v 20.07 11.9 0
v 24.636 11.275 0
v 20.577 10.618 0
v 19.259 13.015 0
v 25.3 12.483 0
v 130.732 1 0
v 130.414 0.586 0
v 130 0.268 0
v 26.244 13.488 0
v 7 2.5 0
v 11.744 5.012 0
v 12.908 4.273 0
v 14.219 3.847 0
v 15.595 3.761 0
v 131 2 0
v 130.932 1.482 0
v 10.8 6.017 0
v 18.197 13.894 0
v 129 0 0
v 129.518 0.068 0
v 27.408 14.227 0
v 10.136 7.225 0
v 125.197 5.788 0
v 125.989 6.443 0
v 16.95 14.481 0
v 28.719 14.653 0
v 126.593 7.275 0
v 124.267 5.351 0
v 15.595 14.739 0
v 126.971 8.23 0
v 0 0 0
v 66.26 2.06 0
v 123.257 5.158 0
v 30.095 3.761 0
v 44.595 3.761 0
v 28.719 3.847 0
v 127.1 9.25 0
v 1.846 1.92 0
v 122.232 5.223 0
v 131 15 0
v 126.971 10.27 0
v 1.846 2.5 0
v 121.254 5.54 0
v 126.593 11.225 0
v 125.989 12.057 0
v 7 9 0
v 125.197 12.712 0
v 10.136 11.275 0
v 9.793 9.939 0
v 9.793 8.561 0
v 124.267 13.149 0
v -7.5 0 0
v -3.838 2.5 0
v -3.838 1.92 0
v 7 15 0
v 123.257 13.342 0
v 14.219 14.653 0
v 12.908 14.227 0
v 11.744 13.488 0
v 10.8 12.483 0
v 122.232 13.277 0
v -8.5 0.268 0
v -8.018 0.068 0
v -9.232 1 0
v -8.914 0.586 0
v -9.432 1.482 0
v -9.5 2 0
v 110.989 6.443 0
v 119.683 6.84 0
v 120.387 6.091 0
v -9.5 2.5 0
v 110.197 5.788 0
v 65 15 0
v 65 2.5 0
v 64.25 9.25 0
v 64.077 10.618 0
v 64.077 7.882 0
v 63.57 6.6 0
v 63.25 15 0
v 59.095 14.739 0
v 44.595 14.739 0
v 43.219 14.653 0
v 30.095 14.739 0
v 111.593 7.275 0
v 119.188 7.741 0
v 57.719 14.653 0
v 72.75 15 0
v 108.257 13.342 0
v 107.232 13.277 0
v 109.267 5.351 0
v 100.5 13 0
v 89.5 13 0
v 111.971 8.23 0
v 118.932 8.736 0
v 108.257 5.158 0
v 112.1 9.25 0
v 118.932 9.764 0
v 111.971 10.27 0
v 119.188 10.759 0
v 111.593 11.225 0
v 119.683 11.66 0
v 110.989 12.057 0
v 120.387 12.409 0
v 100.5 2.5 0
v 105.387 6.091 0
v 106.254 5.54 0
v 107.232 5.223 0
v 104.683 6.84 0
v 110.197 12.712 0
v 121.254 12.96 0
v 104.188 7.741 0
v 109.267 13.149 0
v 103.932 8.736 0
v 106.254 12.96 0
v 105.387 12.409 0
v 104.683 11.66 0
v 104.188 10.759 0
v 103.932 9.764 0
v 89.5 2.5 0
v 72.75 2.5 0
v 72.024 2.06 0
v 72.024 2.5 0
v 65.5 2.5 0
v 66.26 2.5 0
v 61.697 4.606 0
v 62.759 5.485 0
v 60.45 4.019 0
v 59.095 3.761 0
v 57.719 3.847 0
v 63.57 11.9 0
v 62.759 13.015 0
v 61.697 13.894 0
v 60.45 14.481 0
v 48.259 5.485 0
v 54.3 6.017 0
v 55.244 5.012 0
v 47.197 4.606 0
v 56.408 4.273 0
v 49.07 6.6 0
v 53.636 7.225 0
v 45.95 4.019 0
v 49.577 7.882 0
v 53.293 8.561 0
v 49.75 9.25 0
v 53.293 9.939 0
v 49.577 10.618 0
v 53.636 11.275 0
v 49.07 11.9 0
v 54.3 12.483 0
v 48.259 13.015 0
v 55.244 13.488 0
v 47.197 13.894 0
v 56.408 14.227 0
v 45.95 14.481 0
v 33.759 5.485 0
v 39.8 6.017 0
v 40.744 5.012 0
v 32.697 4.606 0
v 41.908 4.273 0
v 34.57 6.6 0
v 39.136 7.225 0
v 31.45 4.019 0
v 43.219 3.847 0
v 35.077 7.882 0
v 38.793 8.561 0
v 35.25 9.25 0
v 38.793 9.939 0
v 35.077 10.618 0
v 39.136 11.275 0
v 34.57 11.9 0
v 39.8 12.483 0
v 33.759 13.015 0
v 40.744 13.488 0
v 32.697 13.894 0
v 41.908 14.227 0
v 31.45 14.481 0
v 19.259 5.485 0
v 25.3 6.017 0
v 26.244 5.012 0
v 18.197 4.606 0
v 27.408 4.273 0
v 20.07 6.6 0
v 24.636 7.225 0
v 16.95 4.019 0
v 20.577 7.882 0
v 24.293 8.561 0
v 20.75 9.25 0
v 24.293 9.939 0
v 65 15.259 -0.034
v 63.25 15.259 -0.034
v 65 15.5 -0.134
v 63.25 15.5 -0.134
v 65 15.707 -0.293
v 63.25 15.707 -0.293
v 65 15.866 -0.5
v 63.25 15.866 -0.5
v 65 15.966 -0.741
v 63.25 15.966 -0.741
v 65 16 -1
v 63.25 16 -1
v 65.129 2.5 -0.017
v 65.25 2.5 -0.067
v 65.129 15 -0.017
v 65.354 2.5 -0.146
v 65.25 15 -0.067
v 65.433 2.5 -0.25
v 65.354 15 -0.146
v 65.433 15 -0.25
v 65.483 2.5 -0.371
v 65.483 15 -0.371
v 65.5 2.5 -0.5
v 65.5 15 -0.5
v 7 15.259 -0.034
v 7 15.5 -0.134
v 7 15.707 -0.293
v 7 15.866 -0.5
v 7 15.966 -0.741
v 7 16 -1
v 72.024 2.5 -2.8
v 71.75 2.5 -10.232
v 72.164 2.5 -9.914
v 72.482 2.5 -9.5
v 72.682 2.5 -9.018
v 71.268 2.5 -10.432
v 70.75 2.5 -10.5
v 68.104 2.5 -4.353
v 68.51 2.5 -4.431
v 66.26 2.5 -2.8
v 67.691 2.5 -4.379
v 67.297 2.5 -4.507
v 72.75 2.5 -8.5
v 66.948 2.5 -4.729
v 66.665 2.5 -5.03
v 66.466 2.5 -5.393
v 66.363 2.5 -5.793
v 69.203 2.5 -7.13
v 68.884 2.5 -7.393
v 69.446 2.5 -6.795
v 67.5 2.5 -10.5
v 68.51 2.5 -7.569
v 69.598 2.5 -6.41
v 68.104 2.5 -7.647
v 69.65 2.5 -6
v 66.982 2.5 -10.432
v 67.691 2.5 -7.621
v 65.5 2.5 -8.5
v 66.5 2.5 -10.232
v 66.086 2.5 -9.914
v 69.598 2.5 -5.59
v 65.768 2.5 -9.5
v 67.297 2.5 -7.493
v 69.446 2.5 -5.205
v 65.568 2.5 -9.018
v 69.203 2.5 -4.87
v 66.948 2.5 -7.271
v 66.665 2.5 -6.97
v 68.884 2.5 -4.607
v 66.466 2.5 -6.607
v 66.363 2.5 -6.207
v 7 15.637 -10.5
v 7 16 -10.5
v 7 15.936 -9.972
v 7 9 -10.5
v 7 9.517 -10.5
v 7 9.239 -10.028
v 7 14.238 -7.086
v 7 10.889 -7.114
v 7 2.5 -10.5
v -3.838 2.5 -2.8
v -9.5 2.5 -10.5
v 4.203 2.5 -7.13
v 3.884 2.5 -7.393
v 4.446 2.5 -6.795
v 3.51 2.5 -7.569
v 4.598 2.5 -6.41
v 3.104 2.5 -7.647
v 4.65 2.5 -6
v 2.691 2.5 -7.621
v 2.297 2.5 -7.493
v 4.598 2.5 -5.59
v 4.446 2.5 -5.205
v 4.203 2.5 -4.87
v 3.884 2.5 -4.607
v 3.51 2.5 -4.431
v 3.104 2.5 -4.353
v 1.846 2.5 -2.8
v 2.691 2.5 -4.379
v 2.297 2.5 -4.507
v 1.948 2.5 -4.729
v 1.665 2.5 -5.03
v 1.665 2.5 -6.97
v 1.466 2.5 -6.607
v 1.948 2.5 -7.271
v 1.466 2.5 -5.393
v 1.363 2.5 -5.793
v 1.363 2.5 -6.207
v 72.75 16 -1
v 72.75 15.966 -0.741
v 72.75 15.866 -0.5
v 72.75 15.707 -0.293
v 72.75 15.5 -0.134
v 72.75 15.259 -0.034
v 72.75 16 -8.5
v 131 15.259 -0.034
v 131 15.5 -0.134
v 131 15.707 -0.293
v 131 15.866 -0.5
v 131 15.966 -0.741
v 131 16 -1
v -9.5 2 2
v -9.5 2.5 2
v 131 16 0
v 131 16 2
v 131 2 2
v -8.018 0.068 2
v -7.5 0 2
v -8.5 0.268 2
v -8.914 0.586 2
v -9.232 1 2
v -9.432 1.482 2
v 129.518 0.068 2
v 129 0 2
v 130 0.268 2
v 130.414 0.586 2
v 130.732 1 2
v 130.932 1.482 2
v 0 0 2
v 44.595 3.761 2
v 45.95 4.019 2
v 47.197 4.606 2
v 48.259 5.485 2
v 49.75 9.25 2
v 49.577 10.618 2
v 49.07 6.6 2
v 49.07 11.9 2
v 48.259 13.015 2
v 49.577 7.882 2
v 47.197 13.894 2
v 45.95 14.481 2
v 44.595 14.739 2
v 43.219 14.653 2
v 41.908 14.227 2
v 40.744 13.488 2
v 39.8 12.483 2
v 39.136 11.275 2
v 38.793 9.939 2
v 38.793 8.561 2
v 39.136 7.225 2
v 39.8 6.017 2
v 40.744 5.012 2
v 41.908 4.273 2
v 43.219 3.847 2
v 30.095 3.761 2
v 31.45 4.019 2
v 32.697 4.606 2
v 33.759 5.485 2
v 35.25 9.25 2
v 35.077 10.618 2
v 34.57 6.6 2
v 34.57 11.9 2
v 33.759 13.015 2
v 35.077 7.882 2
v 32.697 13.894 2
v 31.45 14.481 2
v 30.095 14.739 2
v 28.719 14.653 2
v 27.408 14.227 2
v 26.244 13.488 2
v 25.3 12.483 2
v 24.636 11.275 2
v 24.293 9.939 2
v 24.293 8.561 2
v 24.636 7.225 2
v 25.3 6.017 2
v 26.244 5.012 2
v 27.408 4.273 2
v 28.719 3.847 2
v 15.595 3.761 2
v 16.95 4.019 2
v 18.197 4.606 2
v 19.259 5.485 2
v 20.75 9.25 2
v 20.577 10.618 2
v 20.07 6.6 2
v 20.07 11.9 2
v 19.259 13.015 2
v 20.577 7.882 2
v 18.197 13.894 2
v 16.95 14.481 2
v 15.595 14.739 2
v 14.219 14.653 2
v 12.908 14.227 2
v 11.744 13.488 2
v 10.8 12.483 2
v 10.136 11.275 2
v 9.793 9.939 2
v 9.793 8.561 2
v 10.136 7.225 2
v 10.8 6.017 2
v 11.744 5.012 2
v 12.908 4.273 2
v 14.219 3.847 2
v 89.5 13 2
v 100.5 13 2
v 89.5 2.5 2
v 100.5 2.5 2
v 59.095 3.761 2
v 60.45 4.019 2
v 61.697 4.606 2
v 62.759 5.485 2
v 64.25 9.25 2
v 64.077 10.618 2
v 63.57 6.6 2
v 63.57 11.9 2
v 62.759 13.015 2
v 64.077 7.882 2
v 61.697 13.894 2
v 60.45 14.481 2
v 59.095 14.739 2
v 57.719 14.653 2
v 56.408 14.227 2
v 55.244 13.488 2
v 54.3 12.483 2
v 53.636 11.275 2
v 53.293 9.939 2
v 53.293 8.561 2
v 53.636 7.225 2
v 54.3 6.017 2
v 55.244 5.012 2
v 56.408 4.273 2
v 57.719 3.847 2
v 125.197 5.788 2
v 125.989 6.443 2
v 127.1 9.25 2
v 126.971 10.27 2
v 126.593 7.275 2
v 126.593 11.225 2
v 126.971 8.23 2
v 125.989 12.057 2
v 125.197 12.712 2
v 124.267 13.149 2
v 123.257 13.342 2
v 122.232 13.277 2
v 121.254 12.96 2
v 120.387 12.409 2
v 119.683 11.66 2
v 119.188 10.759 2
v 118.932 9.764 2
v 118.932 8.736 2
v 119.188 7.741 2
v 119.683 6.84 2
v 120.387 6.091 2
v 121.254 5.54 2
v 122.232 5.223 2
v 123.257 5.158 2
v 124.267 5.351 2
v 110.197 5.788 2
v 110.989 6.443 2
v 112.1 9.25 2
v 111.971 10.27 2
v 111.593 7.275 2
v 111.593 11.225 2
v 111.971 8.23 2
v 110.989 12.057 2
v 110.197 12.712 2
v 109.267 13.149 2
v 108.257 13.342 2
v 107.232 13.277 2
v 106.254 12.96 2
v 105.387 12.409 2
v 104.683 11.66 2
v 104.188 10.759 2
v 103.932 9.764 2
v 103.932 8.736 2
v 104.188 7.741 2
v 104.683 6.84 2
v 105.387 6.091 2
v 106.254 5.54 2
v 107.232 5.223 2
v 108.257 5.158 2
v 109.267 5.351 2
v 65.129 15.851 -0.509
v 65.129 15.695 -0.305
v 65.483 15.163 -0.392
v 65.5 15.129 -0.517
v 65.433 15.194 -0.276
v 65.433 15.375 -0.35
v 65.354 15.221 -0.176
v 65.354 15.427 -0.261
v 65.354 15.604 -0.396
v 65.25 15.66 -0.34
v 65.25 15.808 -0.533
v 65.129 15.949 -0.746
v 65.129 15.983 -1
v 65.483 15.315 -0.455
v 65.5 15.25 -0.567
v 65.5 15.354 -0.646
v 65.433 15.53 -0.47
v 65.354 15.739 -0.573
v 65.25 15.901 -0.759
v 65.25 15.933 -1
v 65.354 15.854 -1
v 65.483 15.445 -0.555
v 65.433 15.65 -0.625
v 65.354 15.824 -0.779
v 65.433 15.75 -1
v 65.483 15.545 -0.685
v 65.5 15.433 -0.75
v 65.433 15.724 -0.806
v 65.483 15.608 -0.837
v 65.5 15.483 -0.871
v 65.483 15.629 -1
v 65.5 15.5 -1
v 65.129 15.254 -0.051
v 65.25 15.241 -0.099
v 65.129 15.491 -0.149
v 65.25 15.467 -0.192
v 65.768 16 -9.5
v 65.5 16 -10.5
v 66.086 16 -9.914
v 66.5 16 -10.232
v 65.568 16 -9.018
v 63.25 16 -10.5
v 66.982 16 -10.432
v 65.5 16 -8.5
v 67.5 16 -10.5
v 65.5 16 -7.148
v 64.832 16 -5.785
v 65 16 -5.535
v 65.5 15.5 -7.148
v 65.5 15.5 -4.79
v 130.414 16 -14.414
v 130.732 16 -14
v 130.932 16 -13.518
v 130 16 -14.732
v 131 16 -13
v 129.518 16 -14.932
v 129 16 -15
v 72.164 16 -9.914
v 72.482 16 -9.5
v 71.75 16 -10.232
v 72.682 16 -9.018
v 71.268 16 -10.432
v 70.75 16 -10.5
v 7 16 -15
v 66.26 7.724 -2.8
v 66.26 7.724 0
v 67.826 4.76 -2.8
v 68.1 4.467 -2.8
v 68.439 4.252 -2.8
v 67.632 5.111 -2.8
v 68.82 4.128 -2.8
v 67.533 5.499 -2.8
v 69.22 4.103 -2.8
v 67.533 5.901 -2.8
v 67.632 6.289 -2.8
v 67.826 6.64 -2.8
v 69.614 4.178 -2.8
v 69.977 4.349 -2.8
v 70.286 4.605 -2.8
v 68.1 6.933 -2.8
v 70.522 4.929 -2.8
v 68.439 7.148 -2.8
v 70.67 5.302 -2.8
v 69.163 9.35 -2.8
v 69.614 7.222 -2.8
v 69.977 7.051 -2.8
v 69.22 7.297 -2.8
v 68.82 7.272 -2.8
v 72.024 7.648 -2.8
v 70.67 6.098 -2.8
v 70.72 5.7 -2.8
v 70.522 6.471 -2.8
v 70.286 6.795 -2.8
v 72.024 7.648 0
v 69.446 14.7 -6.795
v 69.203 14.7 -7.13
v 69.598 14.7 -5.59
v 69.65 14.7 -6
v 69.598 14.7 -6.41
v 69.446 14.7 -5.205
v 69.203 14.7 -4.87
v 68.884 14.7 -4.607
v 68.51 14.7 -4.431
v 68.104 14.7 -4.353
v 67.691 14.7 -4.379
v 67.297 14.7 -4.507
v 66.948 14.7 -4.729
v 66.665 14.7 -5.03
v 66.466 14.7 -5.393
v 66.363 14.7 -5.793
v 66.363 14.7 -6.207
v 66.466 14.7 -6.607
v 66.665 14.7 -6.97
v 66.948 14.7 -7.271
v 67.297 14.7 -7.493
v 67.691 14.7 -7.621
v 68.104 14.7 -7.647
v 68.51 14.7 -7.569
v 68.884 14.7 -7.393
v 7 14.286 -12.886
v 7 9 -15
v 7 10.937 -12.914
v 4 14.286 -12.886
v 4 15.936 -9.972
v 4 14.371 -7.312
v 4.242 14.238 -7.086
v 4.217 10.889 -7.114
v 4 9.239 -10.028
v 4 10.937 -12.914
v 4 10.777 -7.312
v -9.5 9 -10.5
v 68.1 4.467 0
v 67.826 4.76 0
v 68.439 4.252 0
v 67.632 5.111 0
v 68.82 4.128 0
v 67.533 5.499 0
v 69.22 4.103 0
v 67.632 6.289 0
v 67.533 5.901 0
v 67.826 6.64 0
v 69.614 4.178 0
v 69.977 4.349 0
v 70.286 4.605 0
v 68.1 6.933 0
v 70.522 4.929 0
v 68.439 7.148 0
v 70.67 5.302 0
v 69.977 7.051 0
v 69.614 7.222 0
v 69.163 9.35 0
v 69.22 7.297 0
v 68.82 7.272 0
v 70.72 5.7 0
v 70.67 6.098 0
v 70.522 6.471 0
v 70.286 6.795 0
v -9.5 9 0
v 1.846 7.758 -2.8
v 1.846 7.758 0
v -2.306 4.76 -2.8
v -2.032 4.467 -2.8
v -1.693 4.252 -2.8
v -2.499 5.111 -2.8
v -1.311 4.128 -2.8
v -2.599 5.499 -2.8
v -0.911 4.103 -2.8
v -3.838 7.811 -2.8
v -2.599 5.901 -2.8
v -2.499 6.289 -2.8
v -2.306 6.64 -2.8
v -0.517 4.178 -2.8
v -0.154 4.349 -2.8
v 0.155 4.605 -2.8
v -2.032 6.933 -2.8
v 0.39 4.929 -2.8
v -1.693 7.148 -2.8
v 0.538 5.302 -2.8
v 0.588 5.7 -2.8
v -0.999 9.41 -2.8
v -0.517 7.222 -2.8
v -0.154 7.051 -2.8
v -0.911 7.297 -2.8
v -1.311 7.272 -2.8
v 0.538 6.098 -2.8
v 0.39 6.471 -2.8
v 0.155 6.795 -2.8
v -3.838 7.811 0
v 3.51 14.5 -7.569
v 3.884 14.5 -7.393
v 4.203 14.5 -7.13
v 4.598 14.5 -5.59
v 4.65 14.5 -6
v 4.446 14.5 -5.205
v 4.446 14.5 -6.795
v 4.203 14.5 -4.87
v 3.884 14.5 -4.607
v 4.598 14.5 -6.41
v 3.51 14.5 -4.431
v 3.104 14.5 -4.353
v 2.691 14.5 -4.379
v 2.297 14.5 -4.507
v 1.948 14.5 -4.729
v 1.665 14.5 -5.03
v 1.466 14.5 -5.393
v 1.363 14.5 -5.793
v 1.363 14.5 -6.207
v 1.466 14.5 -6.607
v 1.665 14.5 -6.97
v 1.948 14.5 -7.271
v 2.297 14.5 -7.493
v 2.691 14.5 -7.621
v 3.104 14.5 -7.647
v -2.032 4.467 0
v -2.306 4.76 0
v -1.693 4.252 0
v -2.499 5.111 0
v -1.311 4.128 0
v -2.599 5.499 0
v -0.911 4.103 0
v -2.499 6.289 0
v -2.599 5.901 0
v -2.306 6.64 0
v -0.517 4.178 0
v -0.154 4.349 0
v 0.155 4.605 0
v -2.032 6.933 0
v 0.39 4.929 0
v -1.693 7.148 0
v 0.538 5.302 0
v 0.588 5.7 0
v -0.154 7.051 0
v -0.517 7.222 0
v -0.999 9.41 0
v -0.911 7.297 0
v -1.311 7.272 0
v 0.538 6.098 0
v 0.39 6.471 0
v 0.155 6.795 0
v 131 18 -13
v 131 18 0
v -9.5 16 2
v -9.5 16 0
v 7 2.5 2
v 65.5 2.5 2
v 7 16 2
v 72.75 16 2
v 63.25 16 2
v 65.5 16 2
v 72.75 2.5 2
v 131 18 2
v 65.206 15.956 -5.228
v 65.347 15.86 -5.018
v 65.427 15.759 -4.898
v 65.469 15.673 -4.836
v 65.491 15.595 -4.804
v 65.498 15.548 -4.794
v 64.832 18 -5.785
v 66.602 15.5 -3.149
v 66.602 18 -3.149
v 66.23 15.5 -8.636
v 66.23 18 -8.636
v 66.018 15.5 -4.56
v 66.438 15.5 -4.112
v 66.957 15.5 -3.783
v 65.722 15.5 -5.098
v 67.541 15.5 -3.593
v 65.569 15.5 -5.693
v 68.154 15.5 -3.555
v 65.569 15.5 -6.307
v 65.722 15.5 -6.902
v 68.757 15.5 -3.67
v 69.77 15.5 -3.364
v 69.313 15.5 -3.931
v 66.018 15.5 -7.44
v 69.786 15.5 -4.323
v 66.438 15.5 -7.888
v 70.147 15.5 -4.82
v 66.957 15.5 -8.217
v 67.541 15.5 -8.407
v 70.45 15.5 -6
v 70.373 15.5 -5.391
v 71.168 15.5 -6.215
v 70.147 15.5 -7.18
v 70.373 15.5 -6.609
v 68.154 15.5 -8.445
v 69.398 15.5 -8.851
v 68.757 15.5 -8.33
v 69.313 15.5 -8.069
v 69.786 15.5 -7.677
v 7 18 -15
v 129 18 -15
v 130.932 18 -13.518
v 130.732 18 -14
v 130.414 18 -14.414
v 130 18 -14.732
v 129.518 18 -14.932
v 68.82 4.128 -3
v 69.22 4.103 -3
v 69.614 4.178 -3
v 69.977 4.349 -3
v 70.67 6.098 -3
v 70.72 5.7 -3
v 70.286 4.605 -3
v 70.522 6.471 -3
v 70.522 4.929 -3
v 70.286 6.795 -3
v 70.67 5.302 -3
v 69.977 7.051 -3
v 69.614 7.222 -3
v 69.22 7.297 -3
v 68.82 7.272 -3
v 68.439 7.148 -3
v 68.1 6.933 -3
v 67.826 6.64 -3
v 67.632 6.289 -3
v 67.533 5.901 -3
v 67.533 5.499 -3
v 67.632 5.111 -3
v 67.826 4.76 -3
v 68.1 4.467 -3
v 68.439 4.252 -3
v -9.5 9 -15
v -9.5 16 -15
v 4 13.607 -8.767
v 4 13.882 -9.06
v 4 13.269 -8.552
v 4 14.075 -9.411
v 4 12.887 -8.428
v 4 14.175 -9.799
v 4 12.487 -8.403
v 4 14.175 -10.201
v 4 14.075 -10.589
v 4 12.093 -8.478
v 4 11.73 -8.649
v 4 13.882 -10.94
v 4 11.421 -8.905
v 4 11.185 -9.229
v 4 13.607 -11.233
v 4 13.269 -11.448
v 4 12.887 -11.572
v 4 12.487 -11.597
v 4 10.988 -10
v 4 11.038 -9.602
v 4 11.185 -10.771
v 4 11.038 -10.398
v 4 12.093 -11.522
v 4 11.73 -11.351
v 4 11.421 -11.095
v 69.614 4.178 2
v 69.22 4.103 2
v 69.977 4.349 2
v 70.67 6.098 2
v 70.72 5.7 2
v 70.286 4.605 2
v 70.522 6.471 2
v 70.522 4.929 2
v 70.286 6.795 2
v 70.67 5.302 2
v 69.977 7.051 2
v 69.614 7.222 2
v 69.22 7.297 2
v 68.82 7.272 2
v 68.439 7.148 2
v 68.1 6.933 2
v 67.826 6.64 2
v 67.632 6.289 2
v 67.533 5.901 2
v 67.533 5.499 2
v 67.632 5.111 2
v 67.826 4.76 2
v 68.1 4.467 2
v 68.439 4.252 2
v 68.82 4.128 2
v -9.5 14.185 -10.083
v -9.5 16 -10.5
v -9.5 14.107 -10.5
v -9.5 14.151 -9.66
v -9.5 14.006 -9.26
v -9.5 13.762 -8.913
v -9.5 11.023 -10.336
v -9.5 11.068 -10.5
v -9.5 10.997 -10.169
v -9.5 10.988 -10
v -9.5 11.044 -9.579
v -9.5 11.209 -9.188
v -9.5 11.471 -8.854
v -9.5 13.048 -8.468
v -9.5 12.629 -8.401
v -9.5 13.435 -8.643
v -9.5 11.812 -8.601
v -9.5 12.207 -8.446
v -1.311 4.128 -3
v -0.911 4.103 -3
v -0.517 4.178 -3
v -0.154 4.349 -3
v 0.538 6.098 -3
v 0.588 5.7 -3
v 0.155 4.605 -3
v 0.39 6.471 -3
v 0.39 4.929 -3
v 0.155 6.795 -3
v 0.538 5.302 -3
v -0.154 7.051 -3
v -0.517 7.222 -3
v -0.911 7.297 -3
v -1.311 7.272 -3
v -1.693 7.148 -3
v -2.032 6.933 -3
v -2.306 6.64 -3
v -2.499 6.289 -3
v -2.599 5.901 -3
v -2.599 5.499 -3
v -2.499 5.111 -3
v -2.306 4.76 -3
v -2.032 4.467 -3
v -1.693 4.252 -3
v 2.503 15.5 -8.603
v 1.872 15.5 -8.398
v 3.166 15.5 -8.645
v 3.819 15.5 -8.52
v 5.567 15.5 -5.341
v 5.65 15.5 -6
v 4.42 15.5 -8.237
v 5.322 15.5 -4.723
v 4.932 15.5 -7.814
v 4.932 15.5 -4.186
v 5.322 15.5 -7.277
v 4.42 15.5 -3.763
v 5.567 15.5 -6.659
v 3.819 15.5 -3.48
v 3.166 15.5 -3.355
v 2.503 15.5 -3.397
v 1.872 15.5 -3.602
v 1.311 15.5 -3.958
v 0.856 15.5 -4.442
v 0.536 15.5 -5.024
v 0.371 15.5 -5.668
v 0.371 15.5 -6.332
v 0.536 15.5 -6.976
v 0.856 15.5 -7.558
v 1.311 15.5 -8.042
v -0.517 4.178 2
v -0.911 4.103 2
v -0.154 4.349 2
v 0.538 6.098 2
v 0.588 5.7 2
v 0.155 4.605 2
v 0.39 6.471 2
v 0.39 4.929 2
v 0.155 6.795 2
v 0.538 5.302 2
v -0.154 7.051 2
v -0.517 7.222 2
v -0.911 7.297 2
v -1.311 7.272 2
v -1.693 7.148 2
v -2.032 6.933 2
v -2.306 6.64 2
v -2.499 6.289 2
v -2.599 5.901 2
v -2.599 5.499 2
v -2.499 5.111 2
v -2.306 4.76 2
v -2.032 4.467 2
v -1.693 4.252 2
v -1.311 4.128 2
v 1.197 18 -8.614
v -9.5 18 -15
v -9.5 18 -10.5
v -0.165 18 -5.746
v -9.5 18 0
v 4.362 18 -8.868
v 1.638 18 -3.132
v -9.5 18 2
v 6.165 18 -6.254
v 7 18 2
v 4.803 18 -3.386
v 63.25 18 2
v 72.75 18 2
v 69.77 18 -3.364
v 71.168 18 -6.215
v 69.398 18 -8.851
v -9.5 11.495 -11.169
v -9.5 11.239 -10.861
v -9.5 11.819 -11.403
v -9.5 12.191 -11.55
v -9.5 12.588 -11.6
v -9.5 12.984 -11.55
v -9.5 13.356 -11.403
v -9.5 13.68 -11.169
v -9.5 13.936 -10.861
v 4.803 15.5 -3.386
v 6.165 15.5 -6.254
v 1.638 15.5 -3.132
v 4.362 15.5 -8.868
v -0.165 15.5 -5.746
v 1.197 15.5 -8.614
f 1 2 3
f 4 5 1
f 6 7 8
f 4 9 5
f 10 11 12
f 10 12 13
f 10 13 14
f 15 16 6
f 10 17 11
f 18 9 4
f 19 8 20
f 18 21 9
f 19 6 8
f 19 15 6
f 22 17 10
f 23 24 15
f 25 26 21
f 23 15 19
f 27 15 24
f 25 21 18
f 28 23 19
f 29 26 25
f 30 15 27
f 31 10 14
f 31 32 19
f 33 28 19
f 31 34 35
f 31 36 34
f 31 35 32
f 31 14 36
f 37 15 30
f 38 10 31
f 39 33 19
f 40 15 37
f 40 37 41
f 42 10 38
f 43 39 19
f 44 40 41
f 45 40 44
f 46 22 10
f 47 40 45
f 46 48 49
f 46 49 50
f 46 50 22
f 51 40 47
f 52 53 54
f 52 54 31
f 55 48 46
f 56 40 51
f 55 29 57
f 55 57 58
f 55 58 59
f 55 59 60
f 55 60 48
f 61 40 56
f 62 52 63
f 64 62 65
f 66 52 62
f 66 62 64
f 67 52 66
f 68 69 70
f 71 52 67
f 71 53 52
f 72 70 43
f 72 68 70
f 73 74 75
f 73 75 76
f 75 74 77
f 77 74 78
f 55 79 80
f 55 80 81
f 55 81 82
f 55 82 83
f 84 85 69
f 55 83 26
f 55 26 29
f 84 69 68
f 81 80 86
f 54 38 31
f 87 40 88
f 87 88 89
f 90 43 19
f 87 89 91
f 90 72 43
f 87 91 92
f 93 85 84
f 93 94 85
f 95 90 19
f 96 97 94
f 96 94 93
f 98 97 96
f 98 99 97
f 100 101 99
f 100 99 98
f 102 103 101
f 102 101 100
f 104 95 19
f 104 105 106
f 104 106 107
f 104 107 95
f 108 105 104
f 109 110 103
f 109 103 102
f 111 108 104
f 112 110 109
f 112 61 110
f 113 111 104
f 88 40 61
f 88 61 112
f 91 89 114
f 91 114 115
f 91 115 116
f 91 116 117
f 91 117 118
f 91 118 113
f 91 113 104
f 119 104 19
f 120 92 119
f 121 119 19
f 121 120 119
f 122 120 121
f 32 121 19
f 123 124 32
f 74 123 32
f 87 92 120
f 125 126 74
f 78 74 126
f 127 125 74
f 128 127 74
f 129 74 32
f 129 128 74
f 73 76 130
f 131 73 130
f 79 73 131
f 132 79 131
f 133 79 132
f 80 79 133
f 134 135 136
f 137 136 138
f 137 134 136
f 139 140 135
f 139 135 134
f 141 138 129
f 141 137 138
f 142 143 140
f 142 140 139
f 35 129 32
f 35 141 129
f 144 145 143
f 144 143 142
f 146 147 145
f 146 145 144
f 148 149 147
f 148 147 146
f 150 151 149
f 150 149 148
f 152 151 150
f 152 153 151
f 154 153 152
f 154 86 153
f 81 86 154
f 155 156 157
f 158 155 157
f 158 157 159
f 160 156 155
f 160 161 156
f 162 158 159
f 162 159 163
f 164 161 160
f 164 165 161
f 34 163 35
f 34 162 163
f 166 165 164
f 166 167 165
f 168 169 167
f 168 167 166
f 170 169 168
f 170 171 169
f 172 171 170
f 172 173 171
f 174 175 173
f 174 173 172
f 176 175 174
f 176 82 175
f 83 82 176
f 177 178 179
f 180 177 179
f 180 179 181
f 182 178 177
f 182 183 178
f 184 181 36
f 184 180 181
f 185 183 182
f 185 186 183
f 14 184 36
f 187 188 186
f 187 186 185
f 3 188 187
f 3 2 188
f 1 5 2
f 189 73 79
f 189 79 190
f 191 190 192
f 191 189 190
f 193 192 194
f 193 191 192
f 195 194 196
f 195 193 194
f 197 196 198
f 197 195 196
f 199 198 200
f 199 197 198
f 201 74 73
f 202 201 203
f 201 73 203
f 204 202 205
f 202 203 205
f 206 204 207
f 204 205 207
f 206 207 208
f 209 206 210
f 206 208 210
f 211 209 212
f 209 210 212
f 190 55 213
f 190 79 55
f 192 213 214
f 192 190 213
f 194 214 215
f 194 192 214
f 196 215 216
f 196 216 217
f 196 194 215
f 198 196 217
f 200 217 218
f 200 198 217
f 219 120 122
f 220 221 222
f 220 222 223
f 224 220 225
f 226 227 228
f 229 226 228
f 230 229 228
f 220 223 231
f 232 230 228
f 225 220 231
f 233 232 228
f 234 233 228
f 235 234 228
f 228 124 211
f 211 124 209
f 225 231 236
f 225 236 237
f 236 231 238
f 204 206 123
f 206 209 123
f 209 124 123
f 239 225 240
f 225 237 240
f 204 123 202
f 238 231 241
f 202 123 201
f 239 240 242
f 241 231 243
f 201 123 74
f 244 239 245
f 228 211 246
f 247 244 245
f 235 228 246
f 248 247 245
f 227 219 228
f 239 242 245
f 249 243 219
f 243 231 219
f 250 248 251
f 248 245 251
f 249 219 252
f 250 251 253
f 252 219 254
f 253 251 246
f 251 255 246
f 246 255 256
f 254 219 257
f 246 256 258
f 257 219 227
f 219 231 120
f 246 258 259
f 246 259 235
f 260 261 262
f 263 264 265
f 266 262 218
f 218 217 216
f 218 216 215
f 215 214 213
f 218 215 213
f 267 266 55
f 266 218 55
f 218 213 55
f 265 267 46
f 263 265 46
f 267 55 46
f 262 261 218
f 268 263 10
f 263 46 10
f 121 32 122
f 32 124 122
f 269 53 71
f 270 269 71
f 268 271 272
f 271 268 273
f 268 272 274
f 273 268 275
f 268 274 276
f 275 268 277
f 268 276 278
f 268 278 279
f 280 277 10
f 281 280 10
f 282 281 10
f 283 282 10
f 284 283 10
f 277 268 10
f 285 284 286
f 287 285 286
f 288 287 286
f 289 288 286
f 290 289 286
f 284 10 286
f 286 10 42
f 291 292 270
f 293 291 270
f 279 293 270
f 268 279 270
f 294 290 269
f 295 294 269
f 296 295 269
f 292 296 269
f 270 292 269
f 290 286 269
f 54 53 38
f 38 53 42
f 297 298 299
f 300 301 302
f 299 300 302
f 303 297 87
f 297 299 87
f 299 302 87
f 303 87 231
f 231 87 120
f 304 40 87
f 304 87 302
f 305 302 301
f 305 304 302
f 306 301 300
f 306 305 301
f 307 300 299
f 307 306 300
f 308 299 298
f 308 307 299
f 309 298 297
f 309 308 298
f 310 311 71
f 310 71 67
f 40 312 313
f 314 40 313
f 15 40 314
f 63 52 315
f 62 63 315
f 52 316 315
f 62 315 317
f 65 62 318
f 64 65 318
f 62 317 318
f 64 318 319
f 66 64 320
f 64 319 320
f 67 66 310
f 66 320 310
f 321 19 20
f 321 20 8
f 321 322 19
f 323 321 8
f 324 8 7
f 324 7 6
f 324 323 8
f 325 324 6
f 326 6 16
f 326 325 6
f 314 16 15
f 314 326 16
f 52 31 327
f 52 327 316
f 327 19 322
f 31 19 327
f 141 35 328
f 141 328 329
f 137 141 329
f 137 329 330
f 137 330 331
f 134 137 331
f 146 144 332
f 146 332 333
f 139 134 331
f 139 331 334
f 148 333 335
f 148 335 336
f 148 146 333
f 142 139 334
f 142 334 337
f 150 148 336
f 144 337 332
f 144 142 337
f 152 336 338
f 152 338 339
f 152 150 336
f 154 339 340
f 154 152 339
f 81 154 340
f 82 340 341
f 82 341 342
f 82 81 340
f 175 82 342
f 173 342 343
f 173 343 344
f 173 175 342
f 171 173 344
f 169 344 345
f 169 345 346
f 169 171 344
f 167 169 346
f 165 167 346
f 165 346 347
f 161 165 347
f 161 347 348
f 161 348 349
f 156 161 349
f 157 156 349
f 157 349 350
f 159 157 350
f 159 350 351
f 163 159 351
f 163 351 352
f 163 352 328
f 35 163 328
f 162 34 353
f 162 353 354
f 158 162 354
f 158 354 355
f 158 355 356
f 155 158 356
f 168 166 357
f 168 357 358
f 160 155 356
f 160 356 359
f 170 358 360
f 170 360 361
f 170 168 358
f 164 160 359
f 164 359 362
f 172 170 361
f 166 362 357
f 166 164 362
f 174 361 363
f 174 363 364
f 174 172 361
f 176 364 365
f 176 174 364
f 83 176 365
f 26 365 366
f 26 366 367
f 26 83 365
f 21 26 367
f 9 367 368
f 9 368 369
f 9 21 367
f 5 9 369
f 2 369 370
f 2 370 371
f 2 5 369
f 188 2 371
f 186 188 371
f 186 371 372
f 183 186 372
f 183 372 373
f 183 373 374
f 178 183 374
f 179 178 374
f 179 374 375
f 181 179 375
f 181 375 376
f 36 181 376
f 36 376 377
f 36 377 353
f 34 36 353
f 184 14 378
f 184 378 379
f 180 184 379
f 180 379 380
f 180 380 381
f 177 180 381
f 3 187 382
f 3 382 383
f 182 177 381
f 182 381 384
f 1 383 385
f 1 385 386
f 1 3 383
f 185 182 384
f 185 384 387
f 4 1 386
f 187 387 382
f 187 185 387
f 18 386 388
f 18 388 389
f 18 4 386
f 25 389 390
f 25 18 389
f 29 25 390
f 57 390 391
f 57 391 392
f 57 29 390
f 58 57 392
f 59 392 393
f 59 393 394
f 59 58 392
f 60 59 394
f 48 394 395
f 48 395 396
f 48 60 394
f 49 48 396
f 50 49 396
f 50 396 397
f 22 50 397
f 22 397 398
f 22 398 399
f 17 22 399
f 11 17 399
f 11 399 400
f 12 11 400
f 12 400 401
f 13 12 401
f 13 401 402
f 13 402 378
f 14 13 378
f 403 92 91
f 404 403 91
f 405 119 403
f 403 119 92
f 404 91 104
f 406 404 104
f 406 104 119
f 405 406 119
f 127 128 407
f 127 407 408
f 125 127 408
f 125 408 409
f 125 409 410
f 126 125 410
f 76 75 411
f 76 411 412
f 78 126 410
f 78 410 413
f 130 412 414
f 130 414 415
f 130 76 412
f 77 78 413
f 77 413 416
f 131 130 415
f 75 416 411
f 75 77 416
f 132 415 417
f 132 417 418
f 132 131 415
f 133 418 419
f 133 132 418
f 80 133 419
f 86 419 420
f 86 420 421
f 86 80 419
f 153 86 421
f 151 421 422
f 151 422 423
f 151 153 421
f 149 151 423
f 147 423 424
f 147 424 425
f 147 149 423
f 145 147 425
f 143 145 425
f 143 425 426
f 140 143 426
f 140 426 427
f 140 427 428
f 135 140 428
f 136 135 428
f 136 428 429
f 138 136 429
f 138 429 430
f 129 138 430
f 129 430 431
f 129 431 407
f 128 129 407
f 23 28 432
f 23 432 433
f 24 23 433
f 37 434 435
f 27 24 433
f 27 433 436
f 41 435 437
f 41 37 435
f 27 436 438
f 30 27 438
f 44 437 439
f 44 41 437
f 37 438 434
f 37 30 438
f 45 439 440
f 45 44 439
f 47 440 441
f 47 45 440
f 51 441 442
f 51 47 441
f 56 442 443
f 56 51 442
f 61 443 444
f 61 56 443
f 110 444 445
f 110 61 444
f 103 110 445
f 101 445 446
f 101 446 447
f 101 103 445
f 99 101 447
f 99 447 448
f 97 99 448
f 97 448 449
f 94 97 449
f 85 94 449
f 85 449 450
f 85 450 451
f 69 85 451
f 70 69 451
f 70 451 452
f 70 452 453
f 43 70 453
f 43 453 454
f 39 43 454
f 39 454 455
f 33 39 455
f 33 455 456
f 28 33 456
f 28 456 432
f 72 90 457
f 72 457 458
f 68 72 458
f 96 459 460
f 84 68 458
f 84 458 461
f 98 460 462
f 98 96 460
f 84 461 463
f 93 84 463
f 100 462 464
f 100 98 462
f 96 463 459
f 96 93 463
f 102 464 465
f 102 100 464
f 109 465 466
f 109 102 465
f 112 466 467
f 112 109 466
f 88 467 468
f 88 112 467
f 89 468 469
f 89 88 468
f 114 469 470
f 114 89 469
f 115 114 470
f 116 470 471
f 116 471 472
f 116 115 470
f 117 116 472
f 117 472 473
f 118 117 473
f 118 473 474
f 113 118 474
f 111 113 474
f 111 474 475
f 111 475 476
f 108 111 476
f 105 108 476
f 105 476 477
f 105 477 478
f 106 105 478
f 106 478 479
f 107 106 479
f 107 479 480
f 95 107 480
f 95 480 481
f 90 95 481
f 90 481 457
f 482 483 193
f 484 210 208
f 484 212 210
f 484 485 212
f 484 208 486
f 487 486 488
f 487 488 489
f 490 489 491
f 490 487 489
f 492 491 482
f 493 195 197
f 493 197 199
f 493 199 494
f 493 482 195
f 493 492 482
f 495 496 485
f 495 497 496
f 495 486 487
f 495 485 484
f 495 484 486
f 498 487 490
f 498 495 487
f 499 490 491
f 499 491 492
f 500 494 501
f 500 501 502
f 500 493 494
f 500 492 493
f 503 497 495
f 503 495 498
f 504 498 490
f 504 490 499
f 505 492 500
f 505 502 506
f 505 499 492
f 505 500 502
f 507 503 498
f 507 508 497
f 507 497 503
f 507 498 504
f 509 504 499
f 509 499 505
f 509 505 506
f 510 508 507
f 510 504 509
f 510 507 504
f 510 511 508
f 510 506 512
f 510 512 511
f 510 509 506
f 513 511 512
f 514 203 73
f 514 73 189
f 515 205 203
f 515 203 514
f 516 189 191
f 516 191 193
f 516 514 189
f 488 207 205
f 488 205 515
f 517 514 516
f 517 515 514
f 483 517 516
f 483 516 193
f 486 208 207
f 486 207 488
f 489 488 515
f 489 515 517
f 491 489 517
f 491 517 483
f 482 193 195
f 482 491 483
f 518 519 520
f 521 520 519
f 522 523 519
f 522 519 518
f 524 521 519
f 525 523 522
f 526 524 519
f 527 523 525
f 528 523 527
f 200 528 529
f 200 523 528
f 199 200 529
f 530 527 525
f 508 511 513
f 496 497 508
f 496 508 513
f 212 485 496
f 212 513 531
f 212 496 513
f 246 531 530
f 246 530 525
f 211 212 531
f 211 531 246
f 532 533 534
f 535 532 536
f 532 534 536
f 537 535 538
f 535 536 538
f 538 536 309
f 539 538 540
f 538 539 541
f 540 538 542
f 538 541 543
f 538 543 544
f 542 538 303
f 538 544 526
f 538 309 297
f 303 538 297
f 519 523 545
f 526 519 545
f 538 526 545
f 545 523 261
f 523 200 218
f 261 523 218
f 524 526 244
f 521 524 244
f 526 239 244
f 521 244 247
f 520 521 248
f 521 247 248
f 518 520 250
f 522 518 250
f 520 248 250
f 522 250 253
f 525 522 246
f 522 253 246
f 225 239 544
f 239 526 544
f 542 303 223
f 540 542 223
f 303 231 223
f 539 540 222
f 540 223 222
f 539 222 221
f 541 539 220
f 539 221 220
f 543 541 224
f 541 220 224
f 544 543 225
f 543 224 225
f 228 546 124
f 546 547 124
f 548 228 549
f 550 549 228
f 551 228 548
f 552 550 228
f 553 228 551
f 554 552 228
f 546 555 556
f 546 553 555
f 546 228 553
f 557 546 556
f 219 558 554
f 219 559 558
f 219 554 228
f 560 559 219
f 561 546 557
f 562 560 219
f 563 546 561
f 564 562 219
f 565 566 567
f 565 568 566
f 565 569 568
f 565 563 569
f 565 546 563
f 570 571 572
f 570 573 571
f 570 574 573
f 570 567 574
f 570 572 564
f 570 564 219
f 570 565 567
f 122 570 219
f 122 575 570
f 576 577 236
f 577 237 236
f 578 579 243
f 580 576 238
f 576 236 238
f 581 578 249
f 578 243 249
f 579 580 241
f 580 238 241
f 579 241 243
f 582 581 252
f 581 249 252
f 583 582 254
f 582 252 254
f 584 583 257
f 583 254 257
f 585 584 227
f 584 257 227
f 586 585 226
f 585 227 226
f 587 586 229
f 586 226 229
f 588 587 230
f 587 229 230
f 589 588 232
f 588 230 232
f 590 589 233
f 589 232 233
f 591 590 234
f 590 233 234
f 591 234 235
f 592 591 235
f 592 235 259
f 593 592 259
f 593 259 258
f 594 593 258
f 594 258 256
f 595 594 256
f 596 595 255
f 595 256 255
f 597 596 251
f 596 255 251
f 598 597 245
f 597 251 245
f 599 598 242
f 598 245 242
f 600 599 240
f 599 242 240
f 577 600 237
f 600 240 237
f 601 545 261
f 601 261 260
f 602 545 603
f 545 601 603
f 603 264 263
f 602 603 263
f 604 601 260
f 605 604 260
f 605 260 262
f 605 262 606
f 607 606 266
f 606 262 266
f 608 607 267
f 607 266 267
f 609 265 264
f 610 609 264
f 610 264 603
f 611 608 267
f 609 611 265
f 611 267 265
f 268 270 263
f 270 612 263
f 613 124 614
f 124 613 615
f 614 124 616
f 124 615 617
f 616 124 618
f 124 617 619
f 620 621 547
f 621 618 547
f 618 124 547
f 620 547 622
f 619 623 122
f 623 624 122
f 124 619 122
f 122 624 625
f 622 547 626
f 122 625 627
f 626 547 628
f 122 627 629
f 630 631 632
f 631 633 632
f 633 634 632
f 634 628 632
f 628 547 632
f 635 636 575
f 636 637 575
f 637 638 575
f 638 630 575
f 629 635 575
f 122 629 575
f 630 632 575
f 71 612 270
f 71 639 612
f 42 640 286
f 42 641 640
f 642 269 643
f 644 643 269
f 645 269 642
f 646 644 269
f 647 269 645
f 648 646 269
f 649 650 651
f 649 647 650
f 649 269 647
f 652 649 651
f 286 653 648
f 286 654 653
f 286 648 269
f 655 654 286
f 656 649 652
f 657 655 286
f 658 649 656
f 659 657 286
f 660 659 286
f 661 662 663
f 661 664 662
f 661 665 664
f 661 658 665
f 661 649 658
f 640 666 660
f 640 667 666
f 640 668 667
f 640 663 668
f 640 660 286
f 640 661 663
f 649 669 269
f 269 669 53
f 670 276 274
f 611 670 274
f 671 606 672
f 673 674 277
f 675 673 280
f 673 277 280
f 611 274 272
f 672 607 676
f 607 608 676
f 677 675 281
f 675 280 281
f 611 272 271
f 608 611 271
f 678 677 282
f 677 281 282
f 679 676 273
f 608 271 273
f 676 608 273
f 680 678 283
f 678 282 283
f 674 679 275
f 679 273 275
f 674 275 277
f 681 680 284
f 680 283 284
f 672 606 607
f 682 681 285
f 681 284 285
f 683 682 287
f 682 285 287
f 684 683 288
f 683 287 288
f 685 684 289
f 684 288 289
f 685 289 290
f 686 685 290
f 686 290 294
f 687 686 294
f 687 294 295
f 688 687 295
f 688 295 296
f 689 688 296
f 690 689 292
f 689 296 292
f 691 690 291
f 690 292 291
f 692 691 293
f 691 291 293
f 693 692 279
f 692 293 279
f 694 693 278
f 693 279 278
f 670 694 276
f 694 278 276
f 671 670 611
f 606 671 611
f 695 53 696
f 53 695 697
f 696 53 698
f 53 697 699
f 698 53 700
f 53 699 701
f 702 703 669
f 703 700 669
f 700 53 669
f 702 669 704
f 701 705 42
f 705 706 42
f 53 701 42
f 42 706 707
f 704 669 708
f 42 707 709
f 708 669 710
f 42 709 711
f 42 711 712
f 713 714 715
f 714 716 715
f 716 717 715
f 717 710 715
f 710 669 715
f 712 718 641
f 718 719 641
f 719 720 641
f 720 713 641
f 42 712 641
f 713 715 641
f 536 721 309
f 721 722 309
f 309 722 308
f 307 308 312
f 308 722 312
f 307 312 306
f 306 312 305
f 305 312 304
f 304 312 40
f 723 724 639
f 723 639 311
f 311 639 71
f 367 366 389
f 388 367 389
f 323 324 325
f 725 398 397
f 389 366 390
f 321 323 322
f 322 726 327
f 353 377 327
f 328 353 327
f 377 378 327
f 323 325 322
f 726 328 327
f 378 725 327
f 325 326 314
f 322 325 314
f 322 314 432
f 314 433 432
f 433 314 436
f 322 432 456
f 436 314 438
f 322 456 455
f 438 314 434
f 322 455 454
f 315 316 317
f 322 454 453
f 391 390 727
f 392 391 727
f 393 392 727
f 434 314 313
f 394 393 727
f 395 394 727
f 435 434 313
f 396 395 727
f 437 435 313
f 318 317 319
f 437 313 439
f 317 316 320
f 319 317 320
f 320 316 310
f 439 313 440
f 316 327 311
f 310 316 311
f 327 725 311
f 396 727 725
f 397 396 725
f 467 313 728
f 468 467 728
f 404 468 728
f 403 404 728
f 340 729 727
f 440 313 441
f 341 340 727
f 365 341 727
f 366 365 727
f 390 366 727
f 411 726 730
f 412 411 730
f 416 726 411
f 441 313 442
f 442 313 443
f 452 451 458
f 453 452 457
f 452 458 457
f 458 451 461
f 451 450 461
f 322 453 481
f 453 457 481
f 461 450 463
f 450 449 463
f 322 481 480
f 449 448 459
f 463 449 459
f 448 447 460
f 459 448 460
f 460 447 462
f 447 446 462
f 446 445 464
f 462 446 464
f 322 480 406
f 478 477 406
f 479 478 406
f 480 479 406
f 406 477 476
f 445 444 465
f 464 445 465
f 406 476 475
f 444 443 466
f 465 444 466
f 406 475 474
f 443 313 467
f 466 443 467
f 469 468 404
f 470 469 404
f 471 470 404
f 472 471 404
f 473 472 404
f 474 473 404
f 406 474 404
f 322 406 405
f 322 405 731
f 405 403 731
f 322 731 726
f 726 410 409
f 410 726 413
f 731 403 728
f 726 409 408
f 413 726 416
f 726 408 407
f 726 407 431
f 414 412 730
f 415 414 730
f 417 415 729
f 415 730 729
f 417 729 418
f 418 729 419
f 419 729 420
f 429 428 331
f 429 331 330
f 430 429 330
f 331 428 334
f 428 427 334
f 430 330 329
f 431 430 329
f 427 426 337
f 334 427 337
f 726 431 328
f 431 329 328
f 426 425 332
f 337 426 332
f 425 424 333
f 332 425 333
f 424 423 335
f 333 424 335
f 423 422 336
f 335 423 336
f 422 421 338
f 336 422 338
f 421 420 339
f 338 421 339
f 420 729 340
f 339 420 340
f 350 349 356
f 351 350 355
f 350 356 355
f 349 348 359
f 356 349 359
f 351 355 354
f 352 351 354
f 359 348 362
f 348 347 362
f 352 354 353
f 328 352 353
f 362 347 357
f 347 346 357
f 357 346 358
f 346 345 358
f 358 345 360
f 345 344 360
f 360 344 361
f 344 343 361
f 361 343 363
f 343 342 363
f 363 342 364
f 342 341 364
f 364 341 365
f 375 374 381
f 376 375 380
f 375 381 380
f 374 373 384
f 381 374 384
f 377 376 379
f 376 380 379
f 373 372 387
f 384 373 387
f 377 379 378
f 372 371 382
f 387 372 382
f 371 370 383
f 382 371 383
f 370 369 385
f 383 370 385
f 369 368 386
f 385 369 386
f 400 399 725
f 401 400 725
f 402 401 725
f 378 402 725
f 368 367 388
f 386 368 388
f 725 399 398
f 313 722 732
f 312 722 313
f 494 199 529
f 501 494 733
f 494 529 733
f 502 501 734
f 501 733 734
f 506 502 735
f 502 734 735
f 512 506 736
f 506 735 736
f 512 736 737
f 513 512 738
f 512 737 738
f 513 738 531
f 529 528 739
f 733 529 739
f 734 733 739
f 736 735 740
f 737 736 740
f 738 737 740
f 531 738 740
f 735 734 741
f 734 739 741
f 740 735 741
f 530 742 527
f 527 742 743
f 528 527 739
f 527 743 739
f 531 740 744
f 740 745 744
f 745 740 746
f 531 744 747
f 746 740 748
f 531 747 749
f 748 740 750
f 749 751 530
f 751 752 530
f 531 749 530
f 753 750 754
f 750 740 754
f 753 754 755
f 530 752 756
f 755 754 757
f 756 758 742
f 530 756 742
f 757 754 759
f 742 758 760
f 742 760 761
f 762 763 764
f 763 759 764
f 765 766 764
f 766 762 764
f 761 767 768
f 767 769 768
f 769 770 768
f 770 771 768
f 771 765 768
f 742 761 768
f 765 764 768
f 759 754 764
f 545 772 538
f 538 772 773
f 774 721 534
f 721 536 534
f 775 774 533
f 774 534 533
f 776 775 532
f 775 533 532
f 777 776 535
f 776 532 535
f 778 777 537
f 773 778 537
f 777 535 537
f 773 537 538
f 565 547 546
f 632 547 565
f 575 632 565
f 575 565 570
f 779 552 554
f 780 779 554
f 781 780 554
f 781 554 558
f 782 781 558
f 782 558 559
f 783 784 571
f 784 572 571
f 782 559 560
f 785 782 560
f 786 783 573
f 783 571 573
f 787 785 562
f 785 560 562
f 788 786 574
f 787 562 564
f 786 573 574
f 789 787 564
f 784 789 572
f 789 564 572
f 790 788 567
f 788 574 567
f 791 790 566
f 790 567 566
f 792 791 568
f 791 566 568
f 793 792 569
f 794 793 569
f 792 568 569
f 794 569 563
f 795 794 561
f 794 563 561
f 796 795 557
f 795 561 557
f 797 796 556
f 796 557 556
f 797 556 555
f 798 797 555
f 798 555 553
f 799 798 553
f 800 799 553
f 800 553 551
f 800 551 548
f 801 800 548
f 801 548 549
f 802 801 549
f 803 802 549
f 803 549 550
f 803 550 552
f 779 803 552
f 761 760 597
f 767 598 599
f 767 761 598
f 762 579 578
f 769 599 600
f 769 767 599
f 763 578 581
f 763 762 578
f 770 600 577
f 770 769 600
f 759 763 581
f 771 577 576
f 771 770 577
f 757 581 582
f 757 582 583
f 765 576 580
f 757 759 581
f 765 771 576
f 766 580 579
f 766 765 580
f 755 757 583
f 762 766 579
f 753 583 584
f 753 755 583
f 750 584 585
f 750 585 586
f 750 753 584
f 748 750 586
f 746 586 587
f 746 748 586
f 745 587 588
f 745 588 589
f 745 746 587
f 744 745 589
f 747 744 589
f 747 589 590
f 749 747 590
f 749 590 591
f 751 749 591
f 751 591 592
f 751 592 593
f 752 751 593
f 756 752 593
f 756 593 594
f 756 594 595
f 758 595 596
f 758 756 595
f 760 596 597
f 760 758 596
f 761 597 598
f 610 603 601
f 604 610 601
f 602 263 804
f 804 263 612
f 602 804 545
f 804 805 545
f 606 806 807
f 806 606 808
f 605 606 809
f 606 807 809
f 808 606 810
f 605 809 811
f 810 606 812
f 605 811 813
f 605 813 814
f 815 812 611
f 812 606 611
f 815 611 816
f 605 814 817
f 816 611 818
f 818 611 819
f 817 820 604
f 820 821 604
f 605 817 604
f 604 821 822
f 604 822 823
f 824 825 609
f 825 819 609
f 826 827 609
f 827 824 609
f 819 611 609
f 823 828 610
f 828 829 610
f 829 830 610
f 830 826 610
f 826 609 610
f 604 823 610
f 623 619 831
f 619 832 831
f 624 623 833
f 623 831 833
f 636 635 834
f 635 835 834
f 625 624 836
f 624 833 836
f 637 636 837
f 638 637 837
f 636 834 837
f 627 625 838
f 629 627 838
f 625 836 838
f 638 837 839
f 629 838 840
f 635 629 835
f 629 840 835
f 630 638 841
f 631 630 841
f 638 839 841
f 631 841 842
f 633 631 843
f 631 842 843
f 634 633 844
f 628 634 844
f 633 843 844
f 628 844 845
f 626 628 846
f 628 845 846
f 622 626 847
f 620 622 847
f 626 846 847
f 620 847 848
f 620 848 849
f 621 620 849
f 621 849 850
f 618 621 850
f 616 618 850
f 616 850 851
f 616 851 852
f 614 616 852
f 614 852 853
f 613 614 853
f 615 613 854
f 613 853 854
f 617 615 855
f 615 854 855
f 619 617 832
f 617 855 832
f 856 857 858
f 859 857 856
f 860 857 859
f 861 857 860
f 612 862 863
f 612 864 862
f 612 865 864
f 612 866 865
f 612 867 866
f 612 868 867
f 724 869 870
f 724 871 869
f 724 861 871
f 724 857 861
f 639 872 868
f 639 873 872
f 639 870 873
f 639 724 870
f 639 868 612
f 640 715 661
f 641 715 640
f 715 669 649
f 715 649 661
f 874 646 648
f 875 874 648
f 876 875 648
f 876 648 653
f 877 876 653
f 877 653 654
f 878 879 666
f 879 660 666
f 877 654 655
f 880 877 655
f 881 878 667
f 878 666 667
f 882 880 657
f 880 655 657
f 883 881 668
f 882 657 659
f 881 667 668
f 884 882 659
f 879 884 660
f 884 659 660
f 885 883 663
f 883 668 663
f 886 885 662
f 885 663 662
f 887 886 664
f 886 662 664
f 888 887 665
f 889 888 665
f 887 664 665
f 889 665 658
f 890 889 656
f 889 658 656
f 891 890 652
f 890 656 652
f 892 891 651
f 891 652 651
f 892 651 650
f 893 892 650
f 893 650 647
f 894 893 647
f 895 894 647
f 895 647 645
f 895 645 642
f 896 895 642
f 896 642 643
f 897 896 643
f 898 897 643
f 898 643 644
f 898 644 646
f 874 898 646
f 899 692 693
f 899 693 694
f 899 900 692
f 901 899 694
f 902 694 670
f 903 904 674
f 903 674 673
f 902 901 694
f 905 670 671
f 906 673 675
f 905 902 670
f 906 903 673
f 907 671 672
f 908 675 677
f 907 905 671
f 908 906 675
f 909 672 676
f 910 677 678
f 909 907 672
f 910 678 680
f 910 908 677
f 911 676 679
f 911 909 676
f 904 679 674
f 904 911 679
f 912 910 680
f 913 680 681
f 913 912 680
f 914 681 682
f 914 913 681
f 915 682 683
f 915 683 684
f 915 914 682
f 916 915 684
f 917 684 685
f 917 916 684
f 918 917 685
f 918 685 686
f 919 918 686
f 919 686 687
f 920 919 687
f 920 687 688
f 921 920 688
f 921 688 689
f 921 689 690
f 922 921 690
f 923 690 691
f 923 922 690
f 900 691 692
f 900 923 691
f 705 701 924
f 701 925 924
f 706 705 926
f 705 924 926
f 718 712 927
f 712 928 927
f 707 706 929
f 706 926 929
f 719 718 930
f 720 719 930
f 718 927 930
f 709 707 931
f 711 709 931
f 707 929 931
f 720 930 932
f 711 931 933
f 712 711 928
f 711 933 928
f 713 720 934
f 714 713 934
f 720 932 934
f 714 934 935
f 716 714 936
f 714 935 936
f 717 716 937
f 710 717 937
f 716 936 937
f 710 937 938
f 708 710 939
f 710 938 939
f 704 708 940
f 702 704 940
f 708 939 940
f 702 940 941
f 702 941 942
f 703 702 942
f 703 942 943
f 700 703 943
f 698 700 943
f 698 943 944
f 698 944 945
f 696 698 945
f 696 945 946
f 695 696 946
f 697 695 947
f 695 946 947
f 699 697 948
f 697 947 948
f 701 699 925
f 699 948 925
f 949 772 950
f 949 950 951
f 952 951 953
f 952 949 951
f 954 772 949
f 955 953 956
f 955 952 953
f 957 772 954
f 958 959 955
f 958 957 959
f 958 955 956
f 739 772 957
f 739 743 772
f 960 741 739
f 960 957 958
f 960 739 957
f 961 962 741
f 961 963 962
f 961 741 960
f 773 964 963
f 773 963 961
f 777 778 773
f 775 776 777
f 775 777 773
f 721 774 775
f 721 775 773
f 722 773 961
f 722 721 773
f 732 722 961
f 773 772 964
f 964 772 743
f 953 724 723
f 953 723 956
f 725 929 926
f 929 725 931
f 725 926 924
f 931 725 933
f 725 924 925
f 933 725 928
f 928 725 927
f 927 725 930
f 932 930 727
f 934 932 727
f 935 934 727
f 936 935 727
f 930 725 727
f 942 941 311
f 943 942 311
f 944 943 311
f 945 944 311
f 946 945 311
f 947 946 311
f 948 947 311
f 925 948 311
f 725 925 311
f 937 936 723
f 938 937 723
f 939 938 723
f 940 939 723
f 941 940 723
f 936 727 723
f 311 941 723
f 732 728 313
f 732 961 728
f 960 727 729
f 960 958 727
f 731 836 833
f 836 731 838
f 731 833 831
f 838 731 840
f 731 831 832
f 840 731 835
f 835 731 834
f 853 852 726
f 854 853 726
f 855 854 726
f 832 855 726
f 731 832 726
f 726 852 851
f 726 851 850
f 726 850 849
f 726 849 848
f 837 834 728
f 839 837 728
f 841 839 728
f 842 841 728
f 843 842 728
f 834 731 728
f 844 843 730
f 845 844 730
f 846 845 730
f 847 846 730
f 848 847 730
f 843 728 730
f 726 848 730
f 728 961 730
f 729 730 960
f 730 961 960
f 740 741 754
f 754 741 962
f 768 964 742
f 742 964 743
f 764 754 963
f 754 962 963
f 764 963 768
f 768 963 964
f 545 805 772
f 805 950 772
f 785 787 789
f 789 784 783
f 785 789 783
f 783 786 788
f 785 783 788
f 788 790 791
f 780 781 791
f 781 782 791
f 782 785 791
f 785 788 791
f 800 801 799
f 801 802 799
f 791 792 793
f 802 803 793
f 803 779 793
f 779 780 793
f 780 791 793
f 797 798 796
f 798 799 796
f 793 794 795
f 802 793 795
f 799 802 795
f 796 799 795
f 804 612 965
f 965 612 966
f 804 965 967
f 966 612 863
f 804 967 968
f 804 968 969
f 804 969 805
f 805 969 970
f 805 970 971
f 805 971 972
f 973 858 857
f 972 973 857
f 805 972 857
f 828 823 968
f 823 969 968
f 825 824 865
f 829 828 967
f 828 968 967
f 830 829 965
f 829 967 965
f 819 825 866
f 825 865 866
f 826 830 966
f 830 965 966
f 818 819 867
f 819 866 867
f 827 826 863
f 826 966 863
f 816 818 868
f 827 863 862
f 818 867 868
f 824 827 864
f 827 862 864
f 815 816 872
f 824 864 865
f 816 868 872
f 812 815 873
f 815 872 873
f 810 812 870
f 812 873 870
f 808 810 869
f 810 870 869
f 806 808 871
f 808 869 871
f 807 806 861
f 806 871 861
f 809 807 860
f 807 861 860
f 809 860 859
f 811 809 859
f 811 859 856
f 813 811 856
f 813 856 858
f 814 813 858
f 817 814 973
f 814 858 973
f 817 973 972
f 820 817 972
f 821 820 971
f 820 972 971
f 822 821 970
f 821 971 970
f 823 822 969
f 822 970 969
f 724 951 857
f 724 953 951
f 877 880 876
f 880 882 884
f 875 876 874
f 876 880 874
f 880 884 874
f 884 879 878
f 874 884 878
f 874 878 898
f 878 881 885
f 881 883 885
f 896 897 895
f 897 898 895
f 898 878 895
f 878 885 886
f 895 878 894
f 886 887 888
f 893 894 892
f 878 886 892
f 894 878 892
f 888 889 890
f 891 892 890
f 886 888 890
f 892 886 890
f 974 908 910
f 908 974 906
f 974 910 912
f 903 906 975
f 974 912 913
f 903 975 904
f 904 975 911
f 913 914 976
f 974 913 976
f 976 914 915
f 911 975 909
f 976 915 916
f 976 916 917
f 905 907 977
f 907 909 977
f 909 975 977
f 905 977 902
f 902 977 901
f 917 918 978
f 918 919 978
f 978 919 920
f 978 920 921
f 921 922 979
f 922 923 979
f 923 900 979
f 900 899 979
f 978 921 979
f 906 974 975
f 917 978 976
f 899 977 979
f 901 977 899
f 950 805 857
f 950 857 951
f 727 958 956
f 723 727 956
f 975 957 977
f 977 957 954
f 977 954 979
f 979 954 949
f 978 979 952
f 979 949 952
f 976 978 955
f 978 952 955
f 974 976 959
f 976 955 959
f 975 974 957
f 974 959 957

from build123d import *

# Parameters (mm, degrees)
SKETCH_R        = 5.5
SKETCH_R_2      = 4.1
SKETCH_W        = 11
SKETCH_H        = 10.5
PAD_DEPTH       = 2
SKETCH001_W     = 16.5
SKETCH001_H     = 16.5
PAD001_DEPTH    = 12.5
SKETCH002_W     = 140.5
SKETCH002_H     = 3
PAD002_DEPTH    = 17
SKETCH003_W     = 16.5
SKETCH003_H     = 10
PAD003_DEPTH    = 15
SKETCH004_R     = 1.65
POCKET_DEPTH    = 20
POCKET001_DEPTH = 3.5
SKETCH006_R     = 1.6
POCKET002_DEPTH = 20
POCKET003_DEPTH = 3
SKETCH008_R     = 1.6
POCKET004_DEPTH = 5
POCKET005_DEPTH = 2.8
POCKET006_DEPTH = 2.8
CHAMFER_SIZE    = 0.8
CHAMFER001_SIZE = 1
SKETCH011_W     = 142.26446
SKETCH011_H     = 19.063439
POCKET007_DEPTH = 1
FILLET_R        = 2
FILLET001_R     = 2
FILLET002_R     = 2
FILLET003_R     = 2
FILLET004_R     = 2
FILLET005_R     = 1
FILLET006_R     = 1
FILLET007_R     = 0.5


with BuildPart() as part:
    # Sketch → Pad (new body)
    with BuildSketch(Plane.XY):
        Polygon((0, 19), (131, 19), (131, 0), (0, 0), (-9.5, 0), (-9.5, 19), align=None)
        with Locations((15.25, 9.25)):
            Circle(SKETCH_R, mode=Mode.SUBTRACT)
        with Locations((29.75, 9.25)):
            Circle(SKETCH_R, mode=Mode.SUBTRACT)
        with Locations((44.25, 9.25)):
            Circle(SKETCH_R, mode=Mode.SUBTRACT)
        with Locations((58.75, 9.25)):
            Circle(SKETCH_R, mode=Mode.SUBTRACT)
        with Locations((108, 9.25)):
            Circle(SKETCH_R_2, mode=Mode.SUBTRACT)
        with Locations((123, 9.25)):
            Circle(SKETCH_R_2, mode=Mode.SUBTRACT)
        with Locations((95, 7.75)):
            Rectangle(SKETCH_W, SKETCH_H, mode=Mode.SUBTRACT)
    extrude(amount=PAD_DEPTH)

    # Sketch001 → Pad001 (new body)
    with BuildSketch(Plane.XY.offset(2)):
        with Locations((-1.25, 10.75)):
            Rectangle(SKETCH001_W, SKETCH001_H)
        Polygon((63.25, 19), (72.75, 19), (72.75, 2.5), (65.5, 2.5), (65.5, 16), (63.25, 16), align=None)
    extrude(amount=-PAD001_DEPTH)

    # Sketch002 → Pad002 (new body)
    with BuildSketch(Plane.XY.offset(2)):
        with Locations((60.75, 17.5)):
            Rectangle(SKETCH002_W, SKETCH002_H)
    extrude(amount=-PAD002_DEPTH)

    # Sketch003 → Pad003 (new body)
    with BuildSketch(Plane(origin=(0, 0, 0), x_dir=(1, 0, 0), z_dir=(0, 0, -1))):
        with Locations((-1.25, -14)):
            Rectangle(SKETCH003_W, SKETCH003_H)
    extrude(amount=PAD003_DEPTH)

    # Sketch004 → Pocket (cut)
    with BuildSketch(Plane.XZ.offset(-2.5)):
        with Locations((3, -6)):
            Circle(SKETCH004_R)
        with Locations((68, -6)):
            Circle(SKETCH004_R)
    extrude(amount=-POCKET_DEPTH, mode=Mode.SUBTRACT)

    # Sketch005 → Pocket001 (cut)
    with BuildSketch(Plane(origin=(0, 19, 0), x_dir=(-1, 0, 0), z_dir=(0, 1, 0))):
        Polygon((-4.802997, -3.386088), (-6.165213, -6.254486), (-4.362215, -8.868397), (-1.197003, -8.613912), (0.165213, -5.745514), (-1.637785, -3.131603), align=None)
        Polygon((-64.831829, -5.78546), (-66.601711, -3.149014), (-69.769882, -3.363554), (-71.168171, -6.21454), (-69.398289, -8.850986), (-66.230118, -8.636446), align=None)
    extrude(amount=-POCKET001_DEPTH, mode=Mode.SUBTRACT)

    # Sketch006 → Pocket002 (cut)
    with BuildSketch(Plane(origin=(-9.5, 0, 0), x_dir=(0, -1, 0), z_dir=(-1, 0, 0))):
        with Locations((-12.58756, -10)):
            Circle(SKETCH006_R)
    extrude(amount=-POCKET002_DEPTH, mode=Mode.SUBTRACT)

    # Sketch007 → Pocket003 (cut)
    with BuildSketch(Plane.YZ.offset(7)):
        Polygon((14.285865, -12.886017), (15.936076, -9.972234), (14.237772, -7.086217), (10.889255, -7.113983), (9.239044, -10.027766), (10.937348, -12.913783), align=None)
    extrude(amount=-POCKET003_DEPTH, mode=Mode.SUBTRACT)

    # Sketch008 → Pocket004 (cut)
    with BuildSketch(Plane.XY.offset(2)):
        with Locations((69.12, 5.7)):
            Circle(SKETCH008_R)
        with Locations((-1.01165, 5.7)):
            Circle(SKETCH008_R)
    extrude(amount=-POCKET004_DEPTH, mode=Mode.SUBTRACT)

    # Sketch009 → Pocket005 (cut)
    with BuildSketch(Plane(origin=(0, 0, 0), x_dir=(1, 0, 0), z_dir=(0, 0, -1))):
        Polygon((66.259544, -7.723634), (69.163413, -9.350056), (72.023869, -7.648441), (72.023869, -2.059704), (66.259544, -2.059704), align=None)
    extrude(amount=POCKET005_DEPTH, mode=Mode.SUBTRACT)

    # Sketch010 → Pocket006 (cut)
    with BuildSketch(Plane(origin=(0, 0, 0), x_dir=(1, 0, 0), z_dir=(0, 0, -1))):
        Polygon((-3.837748, -7.811181), (-0.999162, -9.409884), (1.845776, -7.757931), (1.845776, -1.91964), (-3.837748, -1.91964), align=None)
    extrude(amount=POCKET006_DEPTH, mode=Mode.SUBTRACT)

    # Chamfer
    chamfer_edges = [part.edges().sort_by_distance(p)[0] for p in [
        (66.35, 15.5, -6),
    ]]
    chamfer(chamfer_edges, length=CHAMFER_SIZE)

    # Chamfer001
    chamfer001_edges = [part.edges().sort_by_distance(p)[0] for p in [
        (1.35, 15.5, -6),
    ]]
    chamfer(chamfer001_edges, length=CHAMFER001_SIZE)

    # Sketch011 → Pocket007 (cut)
    with BuildSketch(Plane(origin=(0, 19, 0), x_dir=(-1, 0, 0), z_dir=(0, 1, 0))):
        with Locations((-60.301471, -6.813256)):
            Rectangle(SKETCH011_W, SKETCH011_H)
    extrude(amount=-POCKET007_DEPTH, mode=Mode.SUBTRACT)

    # Fillet
    fillet_edges = [part.edges().sort_by_distance(p)[0] for p in [
        (72.75, 9.25, -10.5),
    ]]
    fillet(fillet_edges, radius=FILLET_R)

    # Fillet001
    fillet001_edges = [part.edges().sort_by_distance(p)[0] for p in [
        (65.5, 9.25, -10.5),
    ]]
    fillet(fillet001_edges, radius=FILLET001_R)

    # Fillet002
    fillet002_edges = [part.edges().sort_by_distance(p)[0] for p in [
        (131, 0, 1),
    ]]
    fillet(fillet002_edges, radius=FILLET002_R)

    # Fillet003
    fillet003_edges = [part.edges().sort_by_distance(p)[0] for p in [
        (131, 17, -15),
    ]]
    fillet(fillet003_edges, radius=FILLET003_R)

    # Fillet004
    fillet004_edges = [part.edges().sort_by_distance(p)[0] for p in [
        (-9.5, 0, 1),
    ]]
    fillet(fillet004_edges, radius=FILLET004_R)

    # Fillet005
    fillet005_edges = [part.edges().sort_by_distance(p)[0] for p in [
        (101.875, 16, 0),
    ]]
    fillet(fillet005_edges, radius=FILLET005_R)

    # Fillet006
    fillet006_edges = [part.edges().sort_by_distance(p)[0] for p in [
        (35.125, 16, 0),
    ]]
    fillet(fillet006_edges, radius=FILLET006_R)

    # Fillet007
    fillet007_edges = [part.edges().sort_by_distance(p)[0] for p in [
        (65.5, 8.75, 0),
    ]]
    fillet(fillet007_edges, radius=FILLET007_R)


solid = part.part
